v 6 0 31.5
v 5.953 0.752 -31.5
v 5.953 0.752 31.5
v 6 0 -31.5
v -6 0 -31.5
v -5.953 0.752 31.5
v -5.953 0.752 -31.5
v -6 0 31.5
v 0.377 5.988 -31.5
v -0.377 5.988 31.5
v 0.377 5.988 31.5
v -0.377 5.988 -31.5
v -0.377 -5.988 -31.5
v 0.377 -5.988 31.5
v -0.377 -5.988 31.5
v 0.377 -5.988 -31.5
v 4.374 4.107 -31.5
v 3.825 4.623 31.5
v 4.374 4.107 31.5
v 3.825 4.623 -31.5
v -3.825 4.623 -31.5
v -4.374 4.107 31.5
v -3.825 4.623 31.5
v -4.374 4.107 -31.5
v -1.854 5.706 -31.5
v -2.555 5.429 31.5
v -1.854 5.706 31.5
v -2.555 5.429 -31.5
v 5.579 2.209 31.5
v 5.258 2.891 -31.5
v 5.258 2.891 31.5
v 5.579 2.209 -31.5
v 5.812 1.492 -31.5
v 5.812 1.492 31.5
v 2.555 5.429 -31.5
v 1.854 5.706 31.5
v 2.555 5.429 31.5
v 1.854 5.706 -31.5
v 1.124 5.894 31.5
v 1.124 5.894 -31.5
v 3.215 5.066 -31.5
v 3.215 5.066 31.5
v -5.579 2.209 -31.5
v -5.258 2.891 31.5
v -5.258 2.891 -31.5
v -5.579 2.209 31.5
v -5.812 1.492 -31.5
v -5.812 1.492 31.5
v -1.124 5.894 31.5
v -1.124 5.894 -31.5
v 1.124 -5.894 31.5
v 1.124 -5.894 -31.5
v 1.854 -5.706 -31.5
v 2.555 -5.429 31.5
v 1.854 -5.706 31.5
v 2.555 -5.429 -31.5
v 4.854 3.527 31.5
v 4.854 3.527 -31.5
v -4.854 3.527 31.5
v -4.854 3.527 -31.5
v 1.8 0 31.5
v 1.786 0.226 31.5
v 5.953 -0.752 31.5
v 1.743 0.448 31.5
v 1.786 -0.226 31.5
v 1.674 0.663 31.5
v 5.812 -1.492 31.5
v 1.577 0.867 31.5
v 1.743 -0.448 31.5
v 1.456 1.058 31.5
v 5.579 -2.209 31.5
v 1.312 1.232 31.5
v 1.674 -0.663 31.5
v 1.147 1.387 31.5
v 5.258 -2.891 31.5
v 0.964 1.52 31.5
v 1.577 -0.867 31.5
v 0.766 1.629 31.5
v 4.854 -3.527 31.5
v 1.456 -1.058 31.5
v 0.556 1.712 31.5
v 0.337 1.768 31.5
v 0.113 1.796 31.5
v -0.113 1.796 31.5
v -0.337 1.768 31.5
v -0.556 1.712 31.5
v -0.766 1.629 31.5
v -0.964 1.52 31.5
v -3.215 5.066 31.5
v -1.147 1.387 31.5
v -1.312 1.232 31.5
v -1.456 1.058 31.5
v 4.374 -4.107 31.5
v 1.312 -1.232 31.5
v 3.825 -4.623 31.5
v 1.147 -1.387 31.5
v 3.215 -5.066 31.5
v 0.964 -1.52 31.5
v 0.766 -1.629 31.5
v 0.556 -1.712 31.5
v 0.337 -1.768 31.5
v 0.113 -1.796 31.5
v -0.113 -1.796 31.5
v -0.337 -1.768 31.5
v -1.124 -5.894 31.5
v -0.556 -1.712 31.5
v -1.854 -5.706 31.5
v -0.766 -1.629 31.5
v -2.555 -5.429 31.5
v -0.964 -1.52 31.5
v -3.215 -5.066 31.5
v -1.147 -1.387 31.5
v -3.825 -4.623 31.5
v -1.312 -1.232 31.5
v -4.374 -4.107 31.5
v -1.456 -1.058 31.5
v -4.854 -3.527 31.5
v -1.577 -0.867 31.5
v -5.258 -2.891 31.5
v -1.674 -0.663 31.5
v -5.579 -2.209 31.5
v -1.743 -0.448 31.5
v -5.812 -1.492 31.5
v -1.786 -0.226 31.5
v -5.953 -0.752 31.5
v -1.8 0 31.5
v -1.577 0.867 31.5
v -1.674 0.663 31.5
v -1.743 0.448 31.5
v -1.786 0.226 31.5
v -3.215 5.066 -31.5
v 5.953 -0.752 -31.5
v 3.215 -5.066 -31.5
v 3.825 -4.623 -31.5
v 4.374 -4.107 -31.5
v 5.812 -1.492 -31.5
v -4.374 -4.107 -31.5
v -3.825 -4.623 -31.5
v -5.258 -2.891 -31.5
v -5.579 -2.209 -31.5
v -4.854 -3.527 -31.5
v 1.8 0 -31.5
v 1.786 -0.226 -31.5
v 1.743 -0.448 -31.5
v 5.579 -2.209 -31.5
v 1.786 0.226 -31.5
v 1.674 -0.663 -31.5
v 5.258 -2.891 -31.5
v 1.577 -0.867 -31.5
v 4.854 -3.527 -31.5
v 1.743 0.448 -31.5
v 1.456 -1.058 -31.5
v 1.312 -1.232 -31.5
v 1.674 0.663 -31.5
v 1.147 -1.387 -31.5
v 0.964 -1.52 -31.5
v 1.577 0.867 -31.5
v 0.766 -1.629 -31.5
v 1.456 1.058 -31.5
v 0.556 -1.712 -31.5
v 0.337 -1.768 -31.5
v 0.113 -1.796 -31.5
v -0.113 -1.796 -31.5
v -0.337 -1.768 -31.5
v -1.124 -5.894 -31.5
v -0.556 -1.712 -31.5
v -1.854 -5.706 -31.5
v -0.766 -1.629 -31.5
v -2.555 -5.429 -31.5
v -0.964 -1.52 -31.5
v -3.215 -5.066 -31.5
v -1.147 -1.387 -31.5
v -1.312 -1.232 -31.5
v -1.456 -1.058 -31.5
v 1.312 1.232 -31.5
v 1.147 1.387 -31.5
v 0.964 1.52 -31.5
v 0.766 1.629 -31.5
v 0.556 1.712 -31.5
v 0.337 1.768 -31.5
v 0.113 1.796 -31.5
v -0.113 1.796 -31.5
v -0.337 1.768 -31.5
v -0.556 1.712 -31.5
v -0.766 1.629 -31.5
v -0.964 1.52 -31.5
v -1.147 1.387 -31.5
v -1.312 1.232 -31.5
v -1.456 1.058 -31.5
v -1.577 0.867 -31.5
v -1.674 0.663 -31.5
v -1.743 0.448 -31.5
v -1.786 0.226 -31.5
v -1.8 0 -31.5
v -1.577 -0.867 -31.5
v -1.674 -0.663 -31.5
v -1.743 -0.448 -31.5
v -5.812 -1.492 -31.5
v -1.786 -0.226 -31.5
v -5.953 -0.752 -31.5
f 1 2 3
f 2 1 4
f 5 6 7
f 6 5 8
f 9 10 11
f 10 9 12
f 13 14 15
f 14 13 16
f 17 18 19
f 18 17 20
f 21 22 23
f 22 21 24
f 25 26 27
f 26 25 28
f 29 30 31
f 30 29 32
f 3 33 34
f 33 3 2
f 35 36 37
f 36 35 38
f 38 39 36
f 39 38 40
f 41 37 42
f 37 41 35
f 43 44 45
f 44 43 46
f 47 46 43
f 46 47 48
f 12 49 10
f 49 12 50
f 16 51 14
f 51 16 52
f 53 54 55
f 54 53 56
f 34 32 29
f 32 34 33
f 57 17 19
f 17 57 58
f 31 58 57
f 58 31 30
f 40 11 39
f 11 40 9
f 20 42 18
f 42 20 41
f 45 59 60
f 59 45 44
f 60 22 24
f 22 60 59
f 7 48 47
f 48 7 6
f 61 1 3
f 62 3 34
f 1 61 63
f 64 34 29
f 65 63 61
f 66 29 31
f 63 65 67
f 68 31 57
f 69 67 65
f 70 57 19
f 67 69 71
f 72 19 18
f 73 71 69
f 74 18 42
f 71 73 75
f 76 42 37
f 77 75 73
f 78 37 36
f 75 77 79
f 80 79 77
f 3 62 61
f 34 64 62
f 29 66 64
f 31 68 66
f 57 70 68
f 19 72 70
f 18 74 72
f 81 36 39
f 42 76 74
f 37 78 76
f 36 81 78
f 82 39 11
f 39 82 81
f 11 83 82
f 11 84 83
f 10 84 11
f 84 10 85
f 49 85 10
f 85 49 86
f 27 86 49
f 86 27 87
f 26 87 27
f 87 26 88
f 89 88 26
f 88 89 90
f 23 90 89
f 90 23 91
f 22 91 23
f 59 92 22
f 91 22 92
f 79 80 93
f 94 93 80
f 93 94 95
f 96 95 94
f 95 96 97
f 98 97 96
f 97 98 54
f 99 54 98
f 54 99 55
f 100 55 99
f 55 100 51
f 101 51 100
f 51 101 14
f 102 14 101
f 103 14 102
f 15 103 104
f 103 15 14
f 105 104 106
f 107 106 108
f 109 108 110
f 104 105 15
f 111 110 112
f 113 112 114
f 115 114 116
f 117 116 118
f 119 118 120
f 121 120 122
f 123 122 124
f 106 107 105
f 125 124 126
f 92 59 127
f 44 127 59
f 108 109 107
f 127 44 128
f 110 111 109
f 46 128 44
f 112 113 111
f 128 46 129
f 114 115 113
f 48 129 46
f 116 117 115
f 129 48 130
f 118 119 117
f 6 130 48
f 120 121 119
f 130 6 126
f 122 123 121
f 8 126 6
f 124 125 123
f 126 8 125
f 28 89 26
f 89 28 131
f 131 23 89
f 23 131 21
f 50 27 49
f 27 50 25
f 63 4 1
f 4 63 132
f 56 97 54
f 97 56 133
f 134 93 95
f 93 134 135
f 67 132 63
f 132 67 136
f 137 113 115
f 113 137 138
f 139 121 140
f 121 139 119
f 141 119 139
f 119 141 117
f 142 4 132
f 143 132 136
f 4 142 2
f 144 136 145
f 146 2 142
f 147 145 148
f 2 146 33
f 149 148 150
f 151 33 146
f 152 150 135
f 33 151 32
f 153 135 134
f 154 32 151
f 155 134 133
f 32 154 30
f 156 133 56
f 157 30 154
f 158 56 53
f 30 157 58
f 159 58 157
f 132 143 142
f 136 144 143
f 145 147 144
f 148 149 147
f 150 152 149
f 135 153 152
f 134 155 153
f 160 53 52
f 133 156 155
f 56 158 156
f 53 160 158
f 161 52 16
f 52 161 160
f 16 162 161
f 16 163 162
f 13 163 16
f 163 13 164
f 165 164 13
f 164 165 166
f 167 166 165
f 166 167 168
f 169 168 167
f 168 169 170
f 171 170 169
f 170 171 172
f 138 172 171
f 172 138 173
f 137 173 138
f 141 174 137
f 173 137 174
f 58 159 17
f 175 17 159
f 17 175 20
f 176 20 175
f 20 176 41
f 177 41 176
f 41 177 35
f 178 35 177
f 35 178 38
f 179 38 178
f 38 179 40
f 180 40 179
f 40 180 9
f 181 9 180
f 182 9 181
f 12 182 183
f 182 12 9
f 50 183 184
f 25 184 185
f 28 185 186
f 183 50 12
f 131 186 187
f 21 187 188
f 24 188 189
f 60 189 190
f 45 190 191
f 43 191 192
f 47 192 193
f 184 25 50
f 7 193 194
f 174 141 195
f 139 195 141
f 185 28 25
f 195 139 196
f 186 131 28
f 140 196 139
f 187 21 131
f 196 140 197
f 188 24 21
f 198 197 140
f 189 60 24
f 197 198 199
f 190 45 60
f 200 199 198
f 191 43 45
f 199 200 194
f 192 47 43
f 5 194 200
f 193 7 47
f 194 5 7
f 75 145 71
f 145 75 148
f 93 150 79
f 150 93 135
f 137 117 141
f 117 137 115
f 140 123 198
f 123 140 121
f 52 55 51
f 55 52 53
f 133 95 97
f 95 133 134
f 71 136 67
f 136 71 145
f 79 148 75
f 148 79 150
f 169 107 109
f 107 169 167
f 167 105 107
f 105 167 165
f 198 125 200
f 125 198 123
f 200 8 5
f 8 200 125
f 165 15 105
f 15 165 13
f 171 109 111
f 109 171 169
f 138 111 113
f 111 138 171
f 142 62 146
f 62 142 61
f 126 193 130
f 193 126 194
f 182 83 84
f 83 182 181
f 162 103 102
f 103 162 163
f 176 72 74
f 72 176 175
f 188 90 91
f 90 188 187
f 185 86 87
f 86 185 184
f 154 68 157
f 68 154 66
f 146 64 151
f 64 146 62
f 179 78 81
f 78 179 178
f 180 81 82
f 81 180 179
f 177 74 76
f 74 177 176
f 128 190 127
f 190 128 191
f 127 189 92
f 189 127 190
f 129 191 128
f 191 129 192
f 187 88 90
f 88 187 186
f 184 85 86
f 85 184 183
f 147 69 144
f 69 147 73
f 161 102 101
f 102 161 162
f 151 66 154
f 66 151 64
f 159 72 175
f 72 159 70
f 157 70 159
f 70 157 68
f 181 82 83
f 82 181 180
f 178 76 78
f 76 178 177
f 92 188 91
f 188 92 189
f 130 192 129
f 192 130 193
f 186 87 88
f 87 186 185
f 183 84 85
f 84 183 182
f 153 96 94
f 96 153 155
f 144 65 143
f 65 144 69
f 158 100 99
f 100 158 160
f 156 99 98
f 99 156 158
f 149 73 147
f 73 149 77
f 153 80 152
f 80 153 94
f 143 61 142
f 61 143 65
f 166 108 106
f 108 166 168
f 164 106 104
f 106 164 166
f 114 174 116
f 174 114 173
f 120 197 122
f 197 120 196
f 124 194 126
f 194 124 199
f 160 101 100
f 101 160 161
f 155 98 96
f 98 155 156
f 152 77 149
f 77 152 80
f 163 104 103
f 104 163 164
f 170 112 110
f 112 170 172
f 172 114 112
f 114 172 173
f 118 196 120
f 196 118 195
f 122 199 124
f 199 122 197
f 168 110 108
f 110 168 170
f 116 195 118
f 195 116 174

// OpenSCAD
$fn = 50;


difference() {
	union() {
		translate(v = [0, 0, -31.5000000000]) {
			cylinder(h = 63, r = 6.0000000000);
		}
	}
	union() {
		translate(v = [0, 0, -100.0000000000]) {
			cylinder(h = 200, r = 1.8000000000);
		}
	}
}
